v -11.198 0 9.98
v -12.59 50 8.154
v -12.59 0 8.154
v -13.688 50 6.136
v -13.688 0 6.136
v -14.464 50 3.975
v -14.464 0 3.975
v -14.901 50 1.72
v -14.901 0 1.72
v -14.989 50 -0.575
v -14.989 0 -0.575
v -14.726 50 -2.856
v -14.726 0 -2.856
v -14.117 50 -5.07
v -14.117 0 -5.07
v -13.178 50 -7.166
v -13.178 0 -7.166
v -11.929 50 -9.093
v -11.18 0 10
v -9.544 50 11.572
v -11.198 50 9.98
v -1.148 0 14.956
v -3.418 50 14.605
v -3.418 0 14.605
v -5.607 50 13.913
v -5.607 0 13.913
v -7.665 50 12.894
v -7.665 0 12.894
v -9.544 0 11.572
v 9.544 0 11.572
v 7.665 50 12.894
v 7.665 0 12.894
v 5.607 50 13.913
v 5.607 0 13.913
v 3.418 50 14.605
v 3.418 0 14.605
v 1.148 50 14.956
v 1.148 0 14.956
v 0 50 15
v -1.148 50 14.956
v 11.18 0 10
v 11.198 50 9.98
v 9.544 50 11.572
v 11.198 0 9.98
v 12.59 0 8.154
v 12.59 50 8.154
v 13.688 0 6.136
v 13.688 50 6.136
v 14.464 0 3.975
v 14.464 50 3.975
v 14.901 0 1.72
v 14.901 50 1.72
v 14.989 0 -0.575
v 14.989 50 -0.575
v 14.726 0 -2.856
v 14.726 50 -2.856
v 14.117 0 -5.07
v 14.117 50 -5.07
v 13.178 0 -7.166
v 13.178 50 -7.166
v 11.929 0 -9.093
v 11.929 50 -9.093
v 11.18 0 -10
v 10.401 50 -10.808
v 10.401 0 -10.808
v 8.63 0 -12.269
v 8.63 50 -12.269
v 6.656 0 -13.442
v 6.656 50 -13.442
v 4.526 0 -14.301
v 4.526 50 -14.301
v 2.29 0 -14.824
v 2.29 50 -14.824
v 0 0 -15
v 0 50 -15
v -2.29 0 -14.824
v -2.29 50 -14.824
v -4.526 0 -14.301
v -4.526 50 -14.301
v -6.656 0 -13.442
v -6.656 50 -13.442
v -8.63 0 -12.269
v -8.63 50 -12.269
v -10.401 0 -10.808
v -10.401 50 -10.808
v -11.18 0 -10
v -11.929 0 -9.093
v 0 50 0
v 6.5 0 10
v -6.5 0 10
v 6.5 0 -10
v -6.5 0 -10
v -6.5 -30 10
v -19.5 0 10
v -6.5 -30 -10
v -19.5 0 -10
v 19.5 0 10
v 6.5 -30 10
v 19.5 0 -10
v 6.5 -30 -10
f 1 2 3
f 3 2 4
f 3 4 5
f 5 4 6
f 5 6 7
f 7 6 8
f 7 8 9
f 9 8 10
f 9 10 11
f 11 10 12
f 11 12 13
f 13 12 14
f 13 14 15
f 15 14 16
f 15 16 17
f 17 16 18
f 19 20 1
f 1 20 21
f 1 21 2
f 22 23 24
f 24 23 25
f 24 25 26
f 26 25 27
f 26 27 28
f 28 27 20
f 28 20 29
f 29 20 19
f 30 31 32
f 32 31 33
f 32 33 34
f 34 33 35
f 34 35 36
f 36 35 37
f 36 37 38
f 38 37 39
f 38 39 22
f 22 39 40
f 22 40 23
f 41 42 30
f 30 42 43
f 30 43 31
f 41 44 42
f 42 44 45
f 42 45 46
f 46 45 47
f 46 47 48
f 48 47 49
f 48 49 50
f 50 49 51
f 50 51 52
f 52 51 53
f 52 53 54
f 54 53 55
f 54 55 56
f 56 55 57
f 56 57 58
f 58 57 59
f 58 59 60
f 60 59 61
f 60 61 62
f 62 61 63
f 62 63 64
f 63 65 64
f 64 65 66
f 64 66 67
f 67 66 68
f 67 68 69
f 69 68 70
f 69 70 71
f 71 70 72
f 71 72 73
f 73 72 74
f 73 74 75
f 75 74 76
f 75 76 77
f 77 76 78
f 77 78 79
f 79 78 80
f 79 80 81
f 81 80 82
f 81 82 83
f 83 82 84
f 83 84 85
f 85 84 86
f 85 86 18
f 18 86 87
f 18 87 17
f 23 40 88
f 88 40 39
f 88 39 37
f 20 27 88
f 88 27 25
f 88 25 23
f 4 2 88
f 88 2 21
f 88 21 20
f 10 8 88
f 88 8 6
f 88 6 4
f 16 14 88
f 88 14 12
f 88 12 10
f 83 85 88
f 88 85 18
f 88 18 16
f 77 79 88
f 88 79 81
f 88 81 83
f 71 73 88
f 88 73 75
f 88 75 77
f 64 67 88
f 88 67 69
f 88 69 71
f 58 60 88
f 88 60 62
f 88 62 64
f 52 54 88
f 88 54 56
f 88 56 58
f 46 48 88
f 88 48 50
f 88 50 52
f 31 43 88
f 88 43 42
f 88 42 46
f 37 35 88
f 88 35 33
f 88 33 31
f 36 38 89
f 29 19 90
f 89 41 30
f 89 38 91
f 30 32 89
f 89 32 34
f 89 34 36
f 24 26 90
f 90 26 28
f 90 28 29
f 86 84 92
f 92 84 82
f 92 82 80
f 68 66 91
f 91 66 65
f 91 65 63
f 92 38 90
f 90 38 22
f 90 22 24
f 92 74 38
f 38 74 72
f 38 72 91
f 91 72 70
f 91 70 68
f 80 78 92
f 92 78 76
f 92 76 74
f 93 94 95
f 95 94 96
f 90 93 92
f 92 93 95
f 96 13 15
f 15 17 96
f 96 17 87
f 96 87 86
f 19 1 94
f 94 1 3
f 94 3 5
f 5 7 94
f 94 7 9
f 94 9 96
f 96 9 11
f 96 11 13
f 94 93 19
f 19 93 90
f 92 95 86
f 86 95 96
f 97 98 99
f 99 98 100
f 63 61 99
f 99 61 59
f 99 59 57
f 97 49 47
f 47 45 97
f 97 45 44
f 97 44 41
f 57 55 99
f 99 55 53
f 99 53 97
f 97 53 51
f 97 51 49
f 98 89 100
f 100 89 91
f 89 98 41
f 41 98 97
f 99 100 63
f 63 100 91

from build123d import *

# Parameters (mm, degrees)
SKETCH_1_R      = 15
EXTRUDE_1_DEPTH = 50
EXTRUDE_5_DEPTH = 10


with BuildPart() as part:
    # 草图1 → 凸台-拉伸1 (new body)
    with BuildSketch(Plane(origin=(0, 0, 0), x_dir=(1, 0, 0), z_dir=(0, 1, 0))):
        Circle(SKETCH_1_R)
    extrude(amount=EXTRUDE_1_DEPTH)

    # 草图6 → 凸台-拉伸5 (add, symmetric)
    with BuildSketch(Plane.XY):
        Polygon((-19.5, 0), (-6.5, -30), (-6.5, 0), align=None)
        Polygon((6.5, -30), (6.5, 0), (19.5, 0), align=None)
    extrude(amount=EXTRUDE_5_DEPTH, both=True)


solid = part.part
